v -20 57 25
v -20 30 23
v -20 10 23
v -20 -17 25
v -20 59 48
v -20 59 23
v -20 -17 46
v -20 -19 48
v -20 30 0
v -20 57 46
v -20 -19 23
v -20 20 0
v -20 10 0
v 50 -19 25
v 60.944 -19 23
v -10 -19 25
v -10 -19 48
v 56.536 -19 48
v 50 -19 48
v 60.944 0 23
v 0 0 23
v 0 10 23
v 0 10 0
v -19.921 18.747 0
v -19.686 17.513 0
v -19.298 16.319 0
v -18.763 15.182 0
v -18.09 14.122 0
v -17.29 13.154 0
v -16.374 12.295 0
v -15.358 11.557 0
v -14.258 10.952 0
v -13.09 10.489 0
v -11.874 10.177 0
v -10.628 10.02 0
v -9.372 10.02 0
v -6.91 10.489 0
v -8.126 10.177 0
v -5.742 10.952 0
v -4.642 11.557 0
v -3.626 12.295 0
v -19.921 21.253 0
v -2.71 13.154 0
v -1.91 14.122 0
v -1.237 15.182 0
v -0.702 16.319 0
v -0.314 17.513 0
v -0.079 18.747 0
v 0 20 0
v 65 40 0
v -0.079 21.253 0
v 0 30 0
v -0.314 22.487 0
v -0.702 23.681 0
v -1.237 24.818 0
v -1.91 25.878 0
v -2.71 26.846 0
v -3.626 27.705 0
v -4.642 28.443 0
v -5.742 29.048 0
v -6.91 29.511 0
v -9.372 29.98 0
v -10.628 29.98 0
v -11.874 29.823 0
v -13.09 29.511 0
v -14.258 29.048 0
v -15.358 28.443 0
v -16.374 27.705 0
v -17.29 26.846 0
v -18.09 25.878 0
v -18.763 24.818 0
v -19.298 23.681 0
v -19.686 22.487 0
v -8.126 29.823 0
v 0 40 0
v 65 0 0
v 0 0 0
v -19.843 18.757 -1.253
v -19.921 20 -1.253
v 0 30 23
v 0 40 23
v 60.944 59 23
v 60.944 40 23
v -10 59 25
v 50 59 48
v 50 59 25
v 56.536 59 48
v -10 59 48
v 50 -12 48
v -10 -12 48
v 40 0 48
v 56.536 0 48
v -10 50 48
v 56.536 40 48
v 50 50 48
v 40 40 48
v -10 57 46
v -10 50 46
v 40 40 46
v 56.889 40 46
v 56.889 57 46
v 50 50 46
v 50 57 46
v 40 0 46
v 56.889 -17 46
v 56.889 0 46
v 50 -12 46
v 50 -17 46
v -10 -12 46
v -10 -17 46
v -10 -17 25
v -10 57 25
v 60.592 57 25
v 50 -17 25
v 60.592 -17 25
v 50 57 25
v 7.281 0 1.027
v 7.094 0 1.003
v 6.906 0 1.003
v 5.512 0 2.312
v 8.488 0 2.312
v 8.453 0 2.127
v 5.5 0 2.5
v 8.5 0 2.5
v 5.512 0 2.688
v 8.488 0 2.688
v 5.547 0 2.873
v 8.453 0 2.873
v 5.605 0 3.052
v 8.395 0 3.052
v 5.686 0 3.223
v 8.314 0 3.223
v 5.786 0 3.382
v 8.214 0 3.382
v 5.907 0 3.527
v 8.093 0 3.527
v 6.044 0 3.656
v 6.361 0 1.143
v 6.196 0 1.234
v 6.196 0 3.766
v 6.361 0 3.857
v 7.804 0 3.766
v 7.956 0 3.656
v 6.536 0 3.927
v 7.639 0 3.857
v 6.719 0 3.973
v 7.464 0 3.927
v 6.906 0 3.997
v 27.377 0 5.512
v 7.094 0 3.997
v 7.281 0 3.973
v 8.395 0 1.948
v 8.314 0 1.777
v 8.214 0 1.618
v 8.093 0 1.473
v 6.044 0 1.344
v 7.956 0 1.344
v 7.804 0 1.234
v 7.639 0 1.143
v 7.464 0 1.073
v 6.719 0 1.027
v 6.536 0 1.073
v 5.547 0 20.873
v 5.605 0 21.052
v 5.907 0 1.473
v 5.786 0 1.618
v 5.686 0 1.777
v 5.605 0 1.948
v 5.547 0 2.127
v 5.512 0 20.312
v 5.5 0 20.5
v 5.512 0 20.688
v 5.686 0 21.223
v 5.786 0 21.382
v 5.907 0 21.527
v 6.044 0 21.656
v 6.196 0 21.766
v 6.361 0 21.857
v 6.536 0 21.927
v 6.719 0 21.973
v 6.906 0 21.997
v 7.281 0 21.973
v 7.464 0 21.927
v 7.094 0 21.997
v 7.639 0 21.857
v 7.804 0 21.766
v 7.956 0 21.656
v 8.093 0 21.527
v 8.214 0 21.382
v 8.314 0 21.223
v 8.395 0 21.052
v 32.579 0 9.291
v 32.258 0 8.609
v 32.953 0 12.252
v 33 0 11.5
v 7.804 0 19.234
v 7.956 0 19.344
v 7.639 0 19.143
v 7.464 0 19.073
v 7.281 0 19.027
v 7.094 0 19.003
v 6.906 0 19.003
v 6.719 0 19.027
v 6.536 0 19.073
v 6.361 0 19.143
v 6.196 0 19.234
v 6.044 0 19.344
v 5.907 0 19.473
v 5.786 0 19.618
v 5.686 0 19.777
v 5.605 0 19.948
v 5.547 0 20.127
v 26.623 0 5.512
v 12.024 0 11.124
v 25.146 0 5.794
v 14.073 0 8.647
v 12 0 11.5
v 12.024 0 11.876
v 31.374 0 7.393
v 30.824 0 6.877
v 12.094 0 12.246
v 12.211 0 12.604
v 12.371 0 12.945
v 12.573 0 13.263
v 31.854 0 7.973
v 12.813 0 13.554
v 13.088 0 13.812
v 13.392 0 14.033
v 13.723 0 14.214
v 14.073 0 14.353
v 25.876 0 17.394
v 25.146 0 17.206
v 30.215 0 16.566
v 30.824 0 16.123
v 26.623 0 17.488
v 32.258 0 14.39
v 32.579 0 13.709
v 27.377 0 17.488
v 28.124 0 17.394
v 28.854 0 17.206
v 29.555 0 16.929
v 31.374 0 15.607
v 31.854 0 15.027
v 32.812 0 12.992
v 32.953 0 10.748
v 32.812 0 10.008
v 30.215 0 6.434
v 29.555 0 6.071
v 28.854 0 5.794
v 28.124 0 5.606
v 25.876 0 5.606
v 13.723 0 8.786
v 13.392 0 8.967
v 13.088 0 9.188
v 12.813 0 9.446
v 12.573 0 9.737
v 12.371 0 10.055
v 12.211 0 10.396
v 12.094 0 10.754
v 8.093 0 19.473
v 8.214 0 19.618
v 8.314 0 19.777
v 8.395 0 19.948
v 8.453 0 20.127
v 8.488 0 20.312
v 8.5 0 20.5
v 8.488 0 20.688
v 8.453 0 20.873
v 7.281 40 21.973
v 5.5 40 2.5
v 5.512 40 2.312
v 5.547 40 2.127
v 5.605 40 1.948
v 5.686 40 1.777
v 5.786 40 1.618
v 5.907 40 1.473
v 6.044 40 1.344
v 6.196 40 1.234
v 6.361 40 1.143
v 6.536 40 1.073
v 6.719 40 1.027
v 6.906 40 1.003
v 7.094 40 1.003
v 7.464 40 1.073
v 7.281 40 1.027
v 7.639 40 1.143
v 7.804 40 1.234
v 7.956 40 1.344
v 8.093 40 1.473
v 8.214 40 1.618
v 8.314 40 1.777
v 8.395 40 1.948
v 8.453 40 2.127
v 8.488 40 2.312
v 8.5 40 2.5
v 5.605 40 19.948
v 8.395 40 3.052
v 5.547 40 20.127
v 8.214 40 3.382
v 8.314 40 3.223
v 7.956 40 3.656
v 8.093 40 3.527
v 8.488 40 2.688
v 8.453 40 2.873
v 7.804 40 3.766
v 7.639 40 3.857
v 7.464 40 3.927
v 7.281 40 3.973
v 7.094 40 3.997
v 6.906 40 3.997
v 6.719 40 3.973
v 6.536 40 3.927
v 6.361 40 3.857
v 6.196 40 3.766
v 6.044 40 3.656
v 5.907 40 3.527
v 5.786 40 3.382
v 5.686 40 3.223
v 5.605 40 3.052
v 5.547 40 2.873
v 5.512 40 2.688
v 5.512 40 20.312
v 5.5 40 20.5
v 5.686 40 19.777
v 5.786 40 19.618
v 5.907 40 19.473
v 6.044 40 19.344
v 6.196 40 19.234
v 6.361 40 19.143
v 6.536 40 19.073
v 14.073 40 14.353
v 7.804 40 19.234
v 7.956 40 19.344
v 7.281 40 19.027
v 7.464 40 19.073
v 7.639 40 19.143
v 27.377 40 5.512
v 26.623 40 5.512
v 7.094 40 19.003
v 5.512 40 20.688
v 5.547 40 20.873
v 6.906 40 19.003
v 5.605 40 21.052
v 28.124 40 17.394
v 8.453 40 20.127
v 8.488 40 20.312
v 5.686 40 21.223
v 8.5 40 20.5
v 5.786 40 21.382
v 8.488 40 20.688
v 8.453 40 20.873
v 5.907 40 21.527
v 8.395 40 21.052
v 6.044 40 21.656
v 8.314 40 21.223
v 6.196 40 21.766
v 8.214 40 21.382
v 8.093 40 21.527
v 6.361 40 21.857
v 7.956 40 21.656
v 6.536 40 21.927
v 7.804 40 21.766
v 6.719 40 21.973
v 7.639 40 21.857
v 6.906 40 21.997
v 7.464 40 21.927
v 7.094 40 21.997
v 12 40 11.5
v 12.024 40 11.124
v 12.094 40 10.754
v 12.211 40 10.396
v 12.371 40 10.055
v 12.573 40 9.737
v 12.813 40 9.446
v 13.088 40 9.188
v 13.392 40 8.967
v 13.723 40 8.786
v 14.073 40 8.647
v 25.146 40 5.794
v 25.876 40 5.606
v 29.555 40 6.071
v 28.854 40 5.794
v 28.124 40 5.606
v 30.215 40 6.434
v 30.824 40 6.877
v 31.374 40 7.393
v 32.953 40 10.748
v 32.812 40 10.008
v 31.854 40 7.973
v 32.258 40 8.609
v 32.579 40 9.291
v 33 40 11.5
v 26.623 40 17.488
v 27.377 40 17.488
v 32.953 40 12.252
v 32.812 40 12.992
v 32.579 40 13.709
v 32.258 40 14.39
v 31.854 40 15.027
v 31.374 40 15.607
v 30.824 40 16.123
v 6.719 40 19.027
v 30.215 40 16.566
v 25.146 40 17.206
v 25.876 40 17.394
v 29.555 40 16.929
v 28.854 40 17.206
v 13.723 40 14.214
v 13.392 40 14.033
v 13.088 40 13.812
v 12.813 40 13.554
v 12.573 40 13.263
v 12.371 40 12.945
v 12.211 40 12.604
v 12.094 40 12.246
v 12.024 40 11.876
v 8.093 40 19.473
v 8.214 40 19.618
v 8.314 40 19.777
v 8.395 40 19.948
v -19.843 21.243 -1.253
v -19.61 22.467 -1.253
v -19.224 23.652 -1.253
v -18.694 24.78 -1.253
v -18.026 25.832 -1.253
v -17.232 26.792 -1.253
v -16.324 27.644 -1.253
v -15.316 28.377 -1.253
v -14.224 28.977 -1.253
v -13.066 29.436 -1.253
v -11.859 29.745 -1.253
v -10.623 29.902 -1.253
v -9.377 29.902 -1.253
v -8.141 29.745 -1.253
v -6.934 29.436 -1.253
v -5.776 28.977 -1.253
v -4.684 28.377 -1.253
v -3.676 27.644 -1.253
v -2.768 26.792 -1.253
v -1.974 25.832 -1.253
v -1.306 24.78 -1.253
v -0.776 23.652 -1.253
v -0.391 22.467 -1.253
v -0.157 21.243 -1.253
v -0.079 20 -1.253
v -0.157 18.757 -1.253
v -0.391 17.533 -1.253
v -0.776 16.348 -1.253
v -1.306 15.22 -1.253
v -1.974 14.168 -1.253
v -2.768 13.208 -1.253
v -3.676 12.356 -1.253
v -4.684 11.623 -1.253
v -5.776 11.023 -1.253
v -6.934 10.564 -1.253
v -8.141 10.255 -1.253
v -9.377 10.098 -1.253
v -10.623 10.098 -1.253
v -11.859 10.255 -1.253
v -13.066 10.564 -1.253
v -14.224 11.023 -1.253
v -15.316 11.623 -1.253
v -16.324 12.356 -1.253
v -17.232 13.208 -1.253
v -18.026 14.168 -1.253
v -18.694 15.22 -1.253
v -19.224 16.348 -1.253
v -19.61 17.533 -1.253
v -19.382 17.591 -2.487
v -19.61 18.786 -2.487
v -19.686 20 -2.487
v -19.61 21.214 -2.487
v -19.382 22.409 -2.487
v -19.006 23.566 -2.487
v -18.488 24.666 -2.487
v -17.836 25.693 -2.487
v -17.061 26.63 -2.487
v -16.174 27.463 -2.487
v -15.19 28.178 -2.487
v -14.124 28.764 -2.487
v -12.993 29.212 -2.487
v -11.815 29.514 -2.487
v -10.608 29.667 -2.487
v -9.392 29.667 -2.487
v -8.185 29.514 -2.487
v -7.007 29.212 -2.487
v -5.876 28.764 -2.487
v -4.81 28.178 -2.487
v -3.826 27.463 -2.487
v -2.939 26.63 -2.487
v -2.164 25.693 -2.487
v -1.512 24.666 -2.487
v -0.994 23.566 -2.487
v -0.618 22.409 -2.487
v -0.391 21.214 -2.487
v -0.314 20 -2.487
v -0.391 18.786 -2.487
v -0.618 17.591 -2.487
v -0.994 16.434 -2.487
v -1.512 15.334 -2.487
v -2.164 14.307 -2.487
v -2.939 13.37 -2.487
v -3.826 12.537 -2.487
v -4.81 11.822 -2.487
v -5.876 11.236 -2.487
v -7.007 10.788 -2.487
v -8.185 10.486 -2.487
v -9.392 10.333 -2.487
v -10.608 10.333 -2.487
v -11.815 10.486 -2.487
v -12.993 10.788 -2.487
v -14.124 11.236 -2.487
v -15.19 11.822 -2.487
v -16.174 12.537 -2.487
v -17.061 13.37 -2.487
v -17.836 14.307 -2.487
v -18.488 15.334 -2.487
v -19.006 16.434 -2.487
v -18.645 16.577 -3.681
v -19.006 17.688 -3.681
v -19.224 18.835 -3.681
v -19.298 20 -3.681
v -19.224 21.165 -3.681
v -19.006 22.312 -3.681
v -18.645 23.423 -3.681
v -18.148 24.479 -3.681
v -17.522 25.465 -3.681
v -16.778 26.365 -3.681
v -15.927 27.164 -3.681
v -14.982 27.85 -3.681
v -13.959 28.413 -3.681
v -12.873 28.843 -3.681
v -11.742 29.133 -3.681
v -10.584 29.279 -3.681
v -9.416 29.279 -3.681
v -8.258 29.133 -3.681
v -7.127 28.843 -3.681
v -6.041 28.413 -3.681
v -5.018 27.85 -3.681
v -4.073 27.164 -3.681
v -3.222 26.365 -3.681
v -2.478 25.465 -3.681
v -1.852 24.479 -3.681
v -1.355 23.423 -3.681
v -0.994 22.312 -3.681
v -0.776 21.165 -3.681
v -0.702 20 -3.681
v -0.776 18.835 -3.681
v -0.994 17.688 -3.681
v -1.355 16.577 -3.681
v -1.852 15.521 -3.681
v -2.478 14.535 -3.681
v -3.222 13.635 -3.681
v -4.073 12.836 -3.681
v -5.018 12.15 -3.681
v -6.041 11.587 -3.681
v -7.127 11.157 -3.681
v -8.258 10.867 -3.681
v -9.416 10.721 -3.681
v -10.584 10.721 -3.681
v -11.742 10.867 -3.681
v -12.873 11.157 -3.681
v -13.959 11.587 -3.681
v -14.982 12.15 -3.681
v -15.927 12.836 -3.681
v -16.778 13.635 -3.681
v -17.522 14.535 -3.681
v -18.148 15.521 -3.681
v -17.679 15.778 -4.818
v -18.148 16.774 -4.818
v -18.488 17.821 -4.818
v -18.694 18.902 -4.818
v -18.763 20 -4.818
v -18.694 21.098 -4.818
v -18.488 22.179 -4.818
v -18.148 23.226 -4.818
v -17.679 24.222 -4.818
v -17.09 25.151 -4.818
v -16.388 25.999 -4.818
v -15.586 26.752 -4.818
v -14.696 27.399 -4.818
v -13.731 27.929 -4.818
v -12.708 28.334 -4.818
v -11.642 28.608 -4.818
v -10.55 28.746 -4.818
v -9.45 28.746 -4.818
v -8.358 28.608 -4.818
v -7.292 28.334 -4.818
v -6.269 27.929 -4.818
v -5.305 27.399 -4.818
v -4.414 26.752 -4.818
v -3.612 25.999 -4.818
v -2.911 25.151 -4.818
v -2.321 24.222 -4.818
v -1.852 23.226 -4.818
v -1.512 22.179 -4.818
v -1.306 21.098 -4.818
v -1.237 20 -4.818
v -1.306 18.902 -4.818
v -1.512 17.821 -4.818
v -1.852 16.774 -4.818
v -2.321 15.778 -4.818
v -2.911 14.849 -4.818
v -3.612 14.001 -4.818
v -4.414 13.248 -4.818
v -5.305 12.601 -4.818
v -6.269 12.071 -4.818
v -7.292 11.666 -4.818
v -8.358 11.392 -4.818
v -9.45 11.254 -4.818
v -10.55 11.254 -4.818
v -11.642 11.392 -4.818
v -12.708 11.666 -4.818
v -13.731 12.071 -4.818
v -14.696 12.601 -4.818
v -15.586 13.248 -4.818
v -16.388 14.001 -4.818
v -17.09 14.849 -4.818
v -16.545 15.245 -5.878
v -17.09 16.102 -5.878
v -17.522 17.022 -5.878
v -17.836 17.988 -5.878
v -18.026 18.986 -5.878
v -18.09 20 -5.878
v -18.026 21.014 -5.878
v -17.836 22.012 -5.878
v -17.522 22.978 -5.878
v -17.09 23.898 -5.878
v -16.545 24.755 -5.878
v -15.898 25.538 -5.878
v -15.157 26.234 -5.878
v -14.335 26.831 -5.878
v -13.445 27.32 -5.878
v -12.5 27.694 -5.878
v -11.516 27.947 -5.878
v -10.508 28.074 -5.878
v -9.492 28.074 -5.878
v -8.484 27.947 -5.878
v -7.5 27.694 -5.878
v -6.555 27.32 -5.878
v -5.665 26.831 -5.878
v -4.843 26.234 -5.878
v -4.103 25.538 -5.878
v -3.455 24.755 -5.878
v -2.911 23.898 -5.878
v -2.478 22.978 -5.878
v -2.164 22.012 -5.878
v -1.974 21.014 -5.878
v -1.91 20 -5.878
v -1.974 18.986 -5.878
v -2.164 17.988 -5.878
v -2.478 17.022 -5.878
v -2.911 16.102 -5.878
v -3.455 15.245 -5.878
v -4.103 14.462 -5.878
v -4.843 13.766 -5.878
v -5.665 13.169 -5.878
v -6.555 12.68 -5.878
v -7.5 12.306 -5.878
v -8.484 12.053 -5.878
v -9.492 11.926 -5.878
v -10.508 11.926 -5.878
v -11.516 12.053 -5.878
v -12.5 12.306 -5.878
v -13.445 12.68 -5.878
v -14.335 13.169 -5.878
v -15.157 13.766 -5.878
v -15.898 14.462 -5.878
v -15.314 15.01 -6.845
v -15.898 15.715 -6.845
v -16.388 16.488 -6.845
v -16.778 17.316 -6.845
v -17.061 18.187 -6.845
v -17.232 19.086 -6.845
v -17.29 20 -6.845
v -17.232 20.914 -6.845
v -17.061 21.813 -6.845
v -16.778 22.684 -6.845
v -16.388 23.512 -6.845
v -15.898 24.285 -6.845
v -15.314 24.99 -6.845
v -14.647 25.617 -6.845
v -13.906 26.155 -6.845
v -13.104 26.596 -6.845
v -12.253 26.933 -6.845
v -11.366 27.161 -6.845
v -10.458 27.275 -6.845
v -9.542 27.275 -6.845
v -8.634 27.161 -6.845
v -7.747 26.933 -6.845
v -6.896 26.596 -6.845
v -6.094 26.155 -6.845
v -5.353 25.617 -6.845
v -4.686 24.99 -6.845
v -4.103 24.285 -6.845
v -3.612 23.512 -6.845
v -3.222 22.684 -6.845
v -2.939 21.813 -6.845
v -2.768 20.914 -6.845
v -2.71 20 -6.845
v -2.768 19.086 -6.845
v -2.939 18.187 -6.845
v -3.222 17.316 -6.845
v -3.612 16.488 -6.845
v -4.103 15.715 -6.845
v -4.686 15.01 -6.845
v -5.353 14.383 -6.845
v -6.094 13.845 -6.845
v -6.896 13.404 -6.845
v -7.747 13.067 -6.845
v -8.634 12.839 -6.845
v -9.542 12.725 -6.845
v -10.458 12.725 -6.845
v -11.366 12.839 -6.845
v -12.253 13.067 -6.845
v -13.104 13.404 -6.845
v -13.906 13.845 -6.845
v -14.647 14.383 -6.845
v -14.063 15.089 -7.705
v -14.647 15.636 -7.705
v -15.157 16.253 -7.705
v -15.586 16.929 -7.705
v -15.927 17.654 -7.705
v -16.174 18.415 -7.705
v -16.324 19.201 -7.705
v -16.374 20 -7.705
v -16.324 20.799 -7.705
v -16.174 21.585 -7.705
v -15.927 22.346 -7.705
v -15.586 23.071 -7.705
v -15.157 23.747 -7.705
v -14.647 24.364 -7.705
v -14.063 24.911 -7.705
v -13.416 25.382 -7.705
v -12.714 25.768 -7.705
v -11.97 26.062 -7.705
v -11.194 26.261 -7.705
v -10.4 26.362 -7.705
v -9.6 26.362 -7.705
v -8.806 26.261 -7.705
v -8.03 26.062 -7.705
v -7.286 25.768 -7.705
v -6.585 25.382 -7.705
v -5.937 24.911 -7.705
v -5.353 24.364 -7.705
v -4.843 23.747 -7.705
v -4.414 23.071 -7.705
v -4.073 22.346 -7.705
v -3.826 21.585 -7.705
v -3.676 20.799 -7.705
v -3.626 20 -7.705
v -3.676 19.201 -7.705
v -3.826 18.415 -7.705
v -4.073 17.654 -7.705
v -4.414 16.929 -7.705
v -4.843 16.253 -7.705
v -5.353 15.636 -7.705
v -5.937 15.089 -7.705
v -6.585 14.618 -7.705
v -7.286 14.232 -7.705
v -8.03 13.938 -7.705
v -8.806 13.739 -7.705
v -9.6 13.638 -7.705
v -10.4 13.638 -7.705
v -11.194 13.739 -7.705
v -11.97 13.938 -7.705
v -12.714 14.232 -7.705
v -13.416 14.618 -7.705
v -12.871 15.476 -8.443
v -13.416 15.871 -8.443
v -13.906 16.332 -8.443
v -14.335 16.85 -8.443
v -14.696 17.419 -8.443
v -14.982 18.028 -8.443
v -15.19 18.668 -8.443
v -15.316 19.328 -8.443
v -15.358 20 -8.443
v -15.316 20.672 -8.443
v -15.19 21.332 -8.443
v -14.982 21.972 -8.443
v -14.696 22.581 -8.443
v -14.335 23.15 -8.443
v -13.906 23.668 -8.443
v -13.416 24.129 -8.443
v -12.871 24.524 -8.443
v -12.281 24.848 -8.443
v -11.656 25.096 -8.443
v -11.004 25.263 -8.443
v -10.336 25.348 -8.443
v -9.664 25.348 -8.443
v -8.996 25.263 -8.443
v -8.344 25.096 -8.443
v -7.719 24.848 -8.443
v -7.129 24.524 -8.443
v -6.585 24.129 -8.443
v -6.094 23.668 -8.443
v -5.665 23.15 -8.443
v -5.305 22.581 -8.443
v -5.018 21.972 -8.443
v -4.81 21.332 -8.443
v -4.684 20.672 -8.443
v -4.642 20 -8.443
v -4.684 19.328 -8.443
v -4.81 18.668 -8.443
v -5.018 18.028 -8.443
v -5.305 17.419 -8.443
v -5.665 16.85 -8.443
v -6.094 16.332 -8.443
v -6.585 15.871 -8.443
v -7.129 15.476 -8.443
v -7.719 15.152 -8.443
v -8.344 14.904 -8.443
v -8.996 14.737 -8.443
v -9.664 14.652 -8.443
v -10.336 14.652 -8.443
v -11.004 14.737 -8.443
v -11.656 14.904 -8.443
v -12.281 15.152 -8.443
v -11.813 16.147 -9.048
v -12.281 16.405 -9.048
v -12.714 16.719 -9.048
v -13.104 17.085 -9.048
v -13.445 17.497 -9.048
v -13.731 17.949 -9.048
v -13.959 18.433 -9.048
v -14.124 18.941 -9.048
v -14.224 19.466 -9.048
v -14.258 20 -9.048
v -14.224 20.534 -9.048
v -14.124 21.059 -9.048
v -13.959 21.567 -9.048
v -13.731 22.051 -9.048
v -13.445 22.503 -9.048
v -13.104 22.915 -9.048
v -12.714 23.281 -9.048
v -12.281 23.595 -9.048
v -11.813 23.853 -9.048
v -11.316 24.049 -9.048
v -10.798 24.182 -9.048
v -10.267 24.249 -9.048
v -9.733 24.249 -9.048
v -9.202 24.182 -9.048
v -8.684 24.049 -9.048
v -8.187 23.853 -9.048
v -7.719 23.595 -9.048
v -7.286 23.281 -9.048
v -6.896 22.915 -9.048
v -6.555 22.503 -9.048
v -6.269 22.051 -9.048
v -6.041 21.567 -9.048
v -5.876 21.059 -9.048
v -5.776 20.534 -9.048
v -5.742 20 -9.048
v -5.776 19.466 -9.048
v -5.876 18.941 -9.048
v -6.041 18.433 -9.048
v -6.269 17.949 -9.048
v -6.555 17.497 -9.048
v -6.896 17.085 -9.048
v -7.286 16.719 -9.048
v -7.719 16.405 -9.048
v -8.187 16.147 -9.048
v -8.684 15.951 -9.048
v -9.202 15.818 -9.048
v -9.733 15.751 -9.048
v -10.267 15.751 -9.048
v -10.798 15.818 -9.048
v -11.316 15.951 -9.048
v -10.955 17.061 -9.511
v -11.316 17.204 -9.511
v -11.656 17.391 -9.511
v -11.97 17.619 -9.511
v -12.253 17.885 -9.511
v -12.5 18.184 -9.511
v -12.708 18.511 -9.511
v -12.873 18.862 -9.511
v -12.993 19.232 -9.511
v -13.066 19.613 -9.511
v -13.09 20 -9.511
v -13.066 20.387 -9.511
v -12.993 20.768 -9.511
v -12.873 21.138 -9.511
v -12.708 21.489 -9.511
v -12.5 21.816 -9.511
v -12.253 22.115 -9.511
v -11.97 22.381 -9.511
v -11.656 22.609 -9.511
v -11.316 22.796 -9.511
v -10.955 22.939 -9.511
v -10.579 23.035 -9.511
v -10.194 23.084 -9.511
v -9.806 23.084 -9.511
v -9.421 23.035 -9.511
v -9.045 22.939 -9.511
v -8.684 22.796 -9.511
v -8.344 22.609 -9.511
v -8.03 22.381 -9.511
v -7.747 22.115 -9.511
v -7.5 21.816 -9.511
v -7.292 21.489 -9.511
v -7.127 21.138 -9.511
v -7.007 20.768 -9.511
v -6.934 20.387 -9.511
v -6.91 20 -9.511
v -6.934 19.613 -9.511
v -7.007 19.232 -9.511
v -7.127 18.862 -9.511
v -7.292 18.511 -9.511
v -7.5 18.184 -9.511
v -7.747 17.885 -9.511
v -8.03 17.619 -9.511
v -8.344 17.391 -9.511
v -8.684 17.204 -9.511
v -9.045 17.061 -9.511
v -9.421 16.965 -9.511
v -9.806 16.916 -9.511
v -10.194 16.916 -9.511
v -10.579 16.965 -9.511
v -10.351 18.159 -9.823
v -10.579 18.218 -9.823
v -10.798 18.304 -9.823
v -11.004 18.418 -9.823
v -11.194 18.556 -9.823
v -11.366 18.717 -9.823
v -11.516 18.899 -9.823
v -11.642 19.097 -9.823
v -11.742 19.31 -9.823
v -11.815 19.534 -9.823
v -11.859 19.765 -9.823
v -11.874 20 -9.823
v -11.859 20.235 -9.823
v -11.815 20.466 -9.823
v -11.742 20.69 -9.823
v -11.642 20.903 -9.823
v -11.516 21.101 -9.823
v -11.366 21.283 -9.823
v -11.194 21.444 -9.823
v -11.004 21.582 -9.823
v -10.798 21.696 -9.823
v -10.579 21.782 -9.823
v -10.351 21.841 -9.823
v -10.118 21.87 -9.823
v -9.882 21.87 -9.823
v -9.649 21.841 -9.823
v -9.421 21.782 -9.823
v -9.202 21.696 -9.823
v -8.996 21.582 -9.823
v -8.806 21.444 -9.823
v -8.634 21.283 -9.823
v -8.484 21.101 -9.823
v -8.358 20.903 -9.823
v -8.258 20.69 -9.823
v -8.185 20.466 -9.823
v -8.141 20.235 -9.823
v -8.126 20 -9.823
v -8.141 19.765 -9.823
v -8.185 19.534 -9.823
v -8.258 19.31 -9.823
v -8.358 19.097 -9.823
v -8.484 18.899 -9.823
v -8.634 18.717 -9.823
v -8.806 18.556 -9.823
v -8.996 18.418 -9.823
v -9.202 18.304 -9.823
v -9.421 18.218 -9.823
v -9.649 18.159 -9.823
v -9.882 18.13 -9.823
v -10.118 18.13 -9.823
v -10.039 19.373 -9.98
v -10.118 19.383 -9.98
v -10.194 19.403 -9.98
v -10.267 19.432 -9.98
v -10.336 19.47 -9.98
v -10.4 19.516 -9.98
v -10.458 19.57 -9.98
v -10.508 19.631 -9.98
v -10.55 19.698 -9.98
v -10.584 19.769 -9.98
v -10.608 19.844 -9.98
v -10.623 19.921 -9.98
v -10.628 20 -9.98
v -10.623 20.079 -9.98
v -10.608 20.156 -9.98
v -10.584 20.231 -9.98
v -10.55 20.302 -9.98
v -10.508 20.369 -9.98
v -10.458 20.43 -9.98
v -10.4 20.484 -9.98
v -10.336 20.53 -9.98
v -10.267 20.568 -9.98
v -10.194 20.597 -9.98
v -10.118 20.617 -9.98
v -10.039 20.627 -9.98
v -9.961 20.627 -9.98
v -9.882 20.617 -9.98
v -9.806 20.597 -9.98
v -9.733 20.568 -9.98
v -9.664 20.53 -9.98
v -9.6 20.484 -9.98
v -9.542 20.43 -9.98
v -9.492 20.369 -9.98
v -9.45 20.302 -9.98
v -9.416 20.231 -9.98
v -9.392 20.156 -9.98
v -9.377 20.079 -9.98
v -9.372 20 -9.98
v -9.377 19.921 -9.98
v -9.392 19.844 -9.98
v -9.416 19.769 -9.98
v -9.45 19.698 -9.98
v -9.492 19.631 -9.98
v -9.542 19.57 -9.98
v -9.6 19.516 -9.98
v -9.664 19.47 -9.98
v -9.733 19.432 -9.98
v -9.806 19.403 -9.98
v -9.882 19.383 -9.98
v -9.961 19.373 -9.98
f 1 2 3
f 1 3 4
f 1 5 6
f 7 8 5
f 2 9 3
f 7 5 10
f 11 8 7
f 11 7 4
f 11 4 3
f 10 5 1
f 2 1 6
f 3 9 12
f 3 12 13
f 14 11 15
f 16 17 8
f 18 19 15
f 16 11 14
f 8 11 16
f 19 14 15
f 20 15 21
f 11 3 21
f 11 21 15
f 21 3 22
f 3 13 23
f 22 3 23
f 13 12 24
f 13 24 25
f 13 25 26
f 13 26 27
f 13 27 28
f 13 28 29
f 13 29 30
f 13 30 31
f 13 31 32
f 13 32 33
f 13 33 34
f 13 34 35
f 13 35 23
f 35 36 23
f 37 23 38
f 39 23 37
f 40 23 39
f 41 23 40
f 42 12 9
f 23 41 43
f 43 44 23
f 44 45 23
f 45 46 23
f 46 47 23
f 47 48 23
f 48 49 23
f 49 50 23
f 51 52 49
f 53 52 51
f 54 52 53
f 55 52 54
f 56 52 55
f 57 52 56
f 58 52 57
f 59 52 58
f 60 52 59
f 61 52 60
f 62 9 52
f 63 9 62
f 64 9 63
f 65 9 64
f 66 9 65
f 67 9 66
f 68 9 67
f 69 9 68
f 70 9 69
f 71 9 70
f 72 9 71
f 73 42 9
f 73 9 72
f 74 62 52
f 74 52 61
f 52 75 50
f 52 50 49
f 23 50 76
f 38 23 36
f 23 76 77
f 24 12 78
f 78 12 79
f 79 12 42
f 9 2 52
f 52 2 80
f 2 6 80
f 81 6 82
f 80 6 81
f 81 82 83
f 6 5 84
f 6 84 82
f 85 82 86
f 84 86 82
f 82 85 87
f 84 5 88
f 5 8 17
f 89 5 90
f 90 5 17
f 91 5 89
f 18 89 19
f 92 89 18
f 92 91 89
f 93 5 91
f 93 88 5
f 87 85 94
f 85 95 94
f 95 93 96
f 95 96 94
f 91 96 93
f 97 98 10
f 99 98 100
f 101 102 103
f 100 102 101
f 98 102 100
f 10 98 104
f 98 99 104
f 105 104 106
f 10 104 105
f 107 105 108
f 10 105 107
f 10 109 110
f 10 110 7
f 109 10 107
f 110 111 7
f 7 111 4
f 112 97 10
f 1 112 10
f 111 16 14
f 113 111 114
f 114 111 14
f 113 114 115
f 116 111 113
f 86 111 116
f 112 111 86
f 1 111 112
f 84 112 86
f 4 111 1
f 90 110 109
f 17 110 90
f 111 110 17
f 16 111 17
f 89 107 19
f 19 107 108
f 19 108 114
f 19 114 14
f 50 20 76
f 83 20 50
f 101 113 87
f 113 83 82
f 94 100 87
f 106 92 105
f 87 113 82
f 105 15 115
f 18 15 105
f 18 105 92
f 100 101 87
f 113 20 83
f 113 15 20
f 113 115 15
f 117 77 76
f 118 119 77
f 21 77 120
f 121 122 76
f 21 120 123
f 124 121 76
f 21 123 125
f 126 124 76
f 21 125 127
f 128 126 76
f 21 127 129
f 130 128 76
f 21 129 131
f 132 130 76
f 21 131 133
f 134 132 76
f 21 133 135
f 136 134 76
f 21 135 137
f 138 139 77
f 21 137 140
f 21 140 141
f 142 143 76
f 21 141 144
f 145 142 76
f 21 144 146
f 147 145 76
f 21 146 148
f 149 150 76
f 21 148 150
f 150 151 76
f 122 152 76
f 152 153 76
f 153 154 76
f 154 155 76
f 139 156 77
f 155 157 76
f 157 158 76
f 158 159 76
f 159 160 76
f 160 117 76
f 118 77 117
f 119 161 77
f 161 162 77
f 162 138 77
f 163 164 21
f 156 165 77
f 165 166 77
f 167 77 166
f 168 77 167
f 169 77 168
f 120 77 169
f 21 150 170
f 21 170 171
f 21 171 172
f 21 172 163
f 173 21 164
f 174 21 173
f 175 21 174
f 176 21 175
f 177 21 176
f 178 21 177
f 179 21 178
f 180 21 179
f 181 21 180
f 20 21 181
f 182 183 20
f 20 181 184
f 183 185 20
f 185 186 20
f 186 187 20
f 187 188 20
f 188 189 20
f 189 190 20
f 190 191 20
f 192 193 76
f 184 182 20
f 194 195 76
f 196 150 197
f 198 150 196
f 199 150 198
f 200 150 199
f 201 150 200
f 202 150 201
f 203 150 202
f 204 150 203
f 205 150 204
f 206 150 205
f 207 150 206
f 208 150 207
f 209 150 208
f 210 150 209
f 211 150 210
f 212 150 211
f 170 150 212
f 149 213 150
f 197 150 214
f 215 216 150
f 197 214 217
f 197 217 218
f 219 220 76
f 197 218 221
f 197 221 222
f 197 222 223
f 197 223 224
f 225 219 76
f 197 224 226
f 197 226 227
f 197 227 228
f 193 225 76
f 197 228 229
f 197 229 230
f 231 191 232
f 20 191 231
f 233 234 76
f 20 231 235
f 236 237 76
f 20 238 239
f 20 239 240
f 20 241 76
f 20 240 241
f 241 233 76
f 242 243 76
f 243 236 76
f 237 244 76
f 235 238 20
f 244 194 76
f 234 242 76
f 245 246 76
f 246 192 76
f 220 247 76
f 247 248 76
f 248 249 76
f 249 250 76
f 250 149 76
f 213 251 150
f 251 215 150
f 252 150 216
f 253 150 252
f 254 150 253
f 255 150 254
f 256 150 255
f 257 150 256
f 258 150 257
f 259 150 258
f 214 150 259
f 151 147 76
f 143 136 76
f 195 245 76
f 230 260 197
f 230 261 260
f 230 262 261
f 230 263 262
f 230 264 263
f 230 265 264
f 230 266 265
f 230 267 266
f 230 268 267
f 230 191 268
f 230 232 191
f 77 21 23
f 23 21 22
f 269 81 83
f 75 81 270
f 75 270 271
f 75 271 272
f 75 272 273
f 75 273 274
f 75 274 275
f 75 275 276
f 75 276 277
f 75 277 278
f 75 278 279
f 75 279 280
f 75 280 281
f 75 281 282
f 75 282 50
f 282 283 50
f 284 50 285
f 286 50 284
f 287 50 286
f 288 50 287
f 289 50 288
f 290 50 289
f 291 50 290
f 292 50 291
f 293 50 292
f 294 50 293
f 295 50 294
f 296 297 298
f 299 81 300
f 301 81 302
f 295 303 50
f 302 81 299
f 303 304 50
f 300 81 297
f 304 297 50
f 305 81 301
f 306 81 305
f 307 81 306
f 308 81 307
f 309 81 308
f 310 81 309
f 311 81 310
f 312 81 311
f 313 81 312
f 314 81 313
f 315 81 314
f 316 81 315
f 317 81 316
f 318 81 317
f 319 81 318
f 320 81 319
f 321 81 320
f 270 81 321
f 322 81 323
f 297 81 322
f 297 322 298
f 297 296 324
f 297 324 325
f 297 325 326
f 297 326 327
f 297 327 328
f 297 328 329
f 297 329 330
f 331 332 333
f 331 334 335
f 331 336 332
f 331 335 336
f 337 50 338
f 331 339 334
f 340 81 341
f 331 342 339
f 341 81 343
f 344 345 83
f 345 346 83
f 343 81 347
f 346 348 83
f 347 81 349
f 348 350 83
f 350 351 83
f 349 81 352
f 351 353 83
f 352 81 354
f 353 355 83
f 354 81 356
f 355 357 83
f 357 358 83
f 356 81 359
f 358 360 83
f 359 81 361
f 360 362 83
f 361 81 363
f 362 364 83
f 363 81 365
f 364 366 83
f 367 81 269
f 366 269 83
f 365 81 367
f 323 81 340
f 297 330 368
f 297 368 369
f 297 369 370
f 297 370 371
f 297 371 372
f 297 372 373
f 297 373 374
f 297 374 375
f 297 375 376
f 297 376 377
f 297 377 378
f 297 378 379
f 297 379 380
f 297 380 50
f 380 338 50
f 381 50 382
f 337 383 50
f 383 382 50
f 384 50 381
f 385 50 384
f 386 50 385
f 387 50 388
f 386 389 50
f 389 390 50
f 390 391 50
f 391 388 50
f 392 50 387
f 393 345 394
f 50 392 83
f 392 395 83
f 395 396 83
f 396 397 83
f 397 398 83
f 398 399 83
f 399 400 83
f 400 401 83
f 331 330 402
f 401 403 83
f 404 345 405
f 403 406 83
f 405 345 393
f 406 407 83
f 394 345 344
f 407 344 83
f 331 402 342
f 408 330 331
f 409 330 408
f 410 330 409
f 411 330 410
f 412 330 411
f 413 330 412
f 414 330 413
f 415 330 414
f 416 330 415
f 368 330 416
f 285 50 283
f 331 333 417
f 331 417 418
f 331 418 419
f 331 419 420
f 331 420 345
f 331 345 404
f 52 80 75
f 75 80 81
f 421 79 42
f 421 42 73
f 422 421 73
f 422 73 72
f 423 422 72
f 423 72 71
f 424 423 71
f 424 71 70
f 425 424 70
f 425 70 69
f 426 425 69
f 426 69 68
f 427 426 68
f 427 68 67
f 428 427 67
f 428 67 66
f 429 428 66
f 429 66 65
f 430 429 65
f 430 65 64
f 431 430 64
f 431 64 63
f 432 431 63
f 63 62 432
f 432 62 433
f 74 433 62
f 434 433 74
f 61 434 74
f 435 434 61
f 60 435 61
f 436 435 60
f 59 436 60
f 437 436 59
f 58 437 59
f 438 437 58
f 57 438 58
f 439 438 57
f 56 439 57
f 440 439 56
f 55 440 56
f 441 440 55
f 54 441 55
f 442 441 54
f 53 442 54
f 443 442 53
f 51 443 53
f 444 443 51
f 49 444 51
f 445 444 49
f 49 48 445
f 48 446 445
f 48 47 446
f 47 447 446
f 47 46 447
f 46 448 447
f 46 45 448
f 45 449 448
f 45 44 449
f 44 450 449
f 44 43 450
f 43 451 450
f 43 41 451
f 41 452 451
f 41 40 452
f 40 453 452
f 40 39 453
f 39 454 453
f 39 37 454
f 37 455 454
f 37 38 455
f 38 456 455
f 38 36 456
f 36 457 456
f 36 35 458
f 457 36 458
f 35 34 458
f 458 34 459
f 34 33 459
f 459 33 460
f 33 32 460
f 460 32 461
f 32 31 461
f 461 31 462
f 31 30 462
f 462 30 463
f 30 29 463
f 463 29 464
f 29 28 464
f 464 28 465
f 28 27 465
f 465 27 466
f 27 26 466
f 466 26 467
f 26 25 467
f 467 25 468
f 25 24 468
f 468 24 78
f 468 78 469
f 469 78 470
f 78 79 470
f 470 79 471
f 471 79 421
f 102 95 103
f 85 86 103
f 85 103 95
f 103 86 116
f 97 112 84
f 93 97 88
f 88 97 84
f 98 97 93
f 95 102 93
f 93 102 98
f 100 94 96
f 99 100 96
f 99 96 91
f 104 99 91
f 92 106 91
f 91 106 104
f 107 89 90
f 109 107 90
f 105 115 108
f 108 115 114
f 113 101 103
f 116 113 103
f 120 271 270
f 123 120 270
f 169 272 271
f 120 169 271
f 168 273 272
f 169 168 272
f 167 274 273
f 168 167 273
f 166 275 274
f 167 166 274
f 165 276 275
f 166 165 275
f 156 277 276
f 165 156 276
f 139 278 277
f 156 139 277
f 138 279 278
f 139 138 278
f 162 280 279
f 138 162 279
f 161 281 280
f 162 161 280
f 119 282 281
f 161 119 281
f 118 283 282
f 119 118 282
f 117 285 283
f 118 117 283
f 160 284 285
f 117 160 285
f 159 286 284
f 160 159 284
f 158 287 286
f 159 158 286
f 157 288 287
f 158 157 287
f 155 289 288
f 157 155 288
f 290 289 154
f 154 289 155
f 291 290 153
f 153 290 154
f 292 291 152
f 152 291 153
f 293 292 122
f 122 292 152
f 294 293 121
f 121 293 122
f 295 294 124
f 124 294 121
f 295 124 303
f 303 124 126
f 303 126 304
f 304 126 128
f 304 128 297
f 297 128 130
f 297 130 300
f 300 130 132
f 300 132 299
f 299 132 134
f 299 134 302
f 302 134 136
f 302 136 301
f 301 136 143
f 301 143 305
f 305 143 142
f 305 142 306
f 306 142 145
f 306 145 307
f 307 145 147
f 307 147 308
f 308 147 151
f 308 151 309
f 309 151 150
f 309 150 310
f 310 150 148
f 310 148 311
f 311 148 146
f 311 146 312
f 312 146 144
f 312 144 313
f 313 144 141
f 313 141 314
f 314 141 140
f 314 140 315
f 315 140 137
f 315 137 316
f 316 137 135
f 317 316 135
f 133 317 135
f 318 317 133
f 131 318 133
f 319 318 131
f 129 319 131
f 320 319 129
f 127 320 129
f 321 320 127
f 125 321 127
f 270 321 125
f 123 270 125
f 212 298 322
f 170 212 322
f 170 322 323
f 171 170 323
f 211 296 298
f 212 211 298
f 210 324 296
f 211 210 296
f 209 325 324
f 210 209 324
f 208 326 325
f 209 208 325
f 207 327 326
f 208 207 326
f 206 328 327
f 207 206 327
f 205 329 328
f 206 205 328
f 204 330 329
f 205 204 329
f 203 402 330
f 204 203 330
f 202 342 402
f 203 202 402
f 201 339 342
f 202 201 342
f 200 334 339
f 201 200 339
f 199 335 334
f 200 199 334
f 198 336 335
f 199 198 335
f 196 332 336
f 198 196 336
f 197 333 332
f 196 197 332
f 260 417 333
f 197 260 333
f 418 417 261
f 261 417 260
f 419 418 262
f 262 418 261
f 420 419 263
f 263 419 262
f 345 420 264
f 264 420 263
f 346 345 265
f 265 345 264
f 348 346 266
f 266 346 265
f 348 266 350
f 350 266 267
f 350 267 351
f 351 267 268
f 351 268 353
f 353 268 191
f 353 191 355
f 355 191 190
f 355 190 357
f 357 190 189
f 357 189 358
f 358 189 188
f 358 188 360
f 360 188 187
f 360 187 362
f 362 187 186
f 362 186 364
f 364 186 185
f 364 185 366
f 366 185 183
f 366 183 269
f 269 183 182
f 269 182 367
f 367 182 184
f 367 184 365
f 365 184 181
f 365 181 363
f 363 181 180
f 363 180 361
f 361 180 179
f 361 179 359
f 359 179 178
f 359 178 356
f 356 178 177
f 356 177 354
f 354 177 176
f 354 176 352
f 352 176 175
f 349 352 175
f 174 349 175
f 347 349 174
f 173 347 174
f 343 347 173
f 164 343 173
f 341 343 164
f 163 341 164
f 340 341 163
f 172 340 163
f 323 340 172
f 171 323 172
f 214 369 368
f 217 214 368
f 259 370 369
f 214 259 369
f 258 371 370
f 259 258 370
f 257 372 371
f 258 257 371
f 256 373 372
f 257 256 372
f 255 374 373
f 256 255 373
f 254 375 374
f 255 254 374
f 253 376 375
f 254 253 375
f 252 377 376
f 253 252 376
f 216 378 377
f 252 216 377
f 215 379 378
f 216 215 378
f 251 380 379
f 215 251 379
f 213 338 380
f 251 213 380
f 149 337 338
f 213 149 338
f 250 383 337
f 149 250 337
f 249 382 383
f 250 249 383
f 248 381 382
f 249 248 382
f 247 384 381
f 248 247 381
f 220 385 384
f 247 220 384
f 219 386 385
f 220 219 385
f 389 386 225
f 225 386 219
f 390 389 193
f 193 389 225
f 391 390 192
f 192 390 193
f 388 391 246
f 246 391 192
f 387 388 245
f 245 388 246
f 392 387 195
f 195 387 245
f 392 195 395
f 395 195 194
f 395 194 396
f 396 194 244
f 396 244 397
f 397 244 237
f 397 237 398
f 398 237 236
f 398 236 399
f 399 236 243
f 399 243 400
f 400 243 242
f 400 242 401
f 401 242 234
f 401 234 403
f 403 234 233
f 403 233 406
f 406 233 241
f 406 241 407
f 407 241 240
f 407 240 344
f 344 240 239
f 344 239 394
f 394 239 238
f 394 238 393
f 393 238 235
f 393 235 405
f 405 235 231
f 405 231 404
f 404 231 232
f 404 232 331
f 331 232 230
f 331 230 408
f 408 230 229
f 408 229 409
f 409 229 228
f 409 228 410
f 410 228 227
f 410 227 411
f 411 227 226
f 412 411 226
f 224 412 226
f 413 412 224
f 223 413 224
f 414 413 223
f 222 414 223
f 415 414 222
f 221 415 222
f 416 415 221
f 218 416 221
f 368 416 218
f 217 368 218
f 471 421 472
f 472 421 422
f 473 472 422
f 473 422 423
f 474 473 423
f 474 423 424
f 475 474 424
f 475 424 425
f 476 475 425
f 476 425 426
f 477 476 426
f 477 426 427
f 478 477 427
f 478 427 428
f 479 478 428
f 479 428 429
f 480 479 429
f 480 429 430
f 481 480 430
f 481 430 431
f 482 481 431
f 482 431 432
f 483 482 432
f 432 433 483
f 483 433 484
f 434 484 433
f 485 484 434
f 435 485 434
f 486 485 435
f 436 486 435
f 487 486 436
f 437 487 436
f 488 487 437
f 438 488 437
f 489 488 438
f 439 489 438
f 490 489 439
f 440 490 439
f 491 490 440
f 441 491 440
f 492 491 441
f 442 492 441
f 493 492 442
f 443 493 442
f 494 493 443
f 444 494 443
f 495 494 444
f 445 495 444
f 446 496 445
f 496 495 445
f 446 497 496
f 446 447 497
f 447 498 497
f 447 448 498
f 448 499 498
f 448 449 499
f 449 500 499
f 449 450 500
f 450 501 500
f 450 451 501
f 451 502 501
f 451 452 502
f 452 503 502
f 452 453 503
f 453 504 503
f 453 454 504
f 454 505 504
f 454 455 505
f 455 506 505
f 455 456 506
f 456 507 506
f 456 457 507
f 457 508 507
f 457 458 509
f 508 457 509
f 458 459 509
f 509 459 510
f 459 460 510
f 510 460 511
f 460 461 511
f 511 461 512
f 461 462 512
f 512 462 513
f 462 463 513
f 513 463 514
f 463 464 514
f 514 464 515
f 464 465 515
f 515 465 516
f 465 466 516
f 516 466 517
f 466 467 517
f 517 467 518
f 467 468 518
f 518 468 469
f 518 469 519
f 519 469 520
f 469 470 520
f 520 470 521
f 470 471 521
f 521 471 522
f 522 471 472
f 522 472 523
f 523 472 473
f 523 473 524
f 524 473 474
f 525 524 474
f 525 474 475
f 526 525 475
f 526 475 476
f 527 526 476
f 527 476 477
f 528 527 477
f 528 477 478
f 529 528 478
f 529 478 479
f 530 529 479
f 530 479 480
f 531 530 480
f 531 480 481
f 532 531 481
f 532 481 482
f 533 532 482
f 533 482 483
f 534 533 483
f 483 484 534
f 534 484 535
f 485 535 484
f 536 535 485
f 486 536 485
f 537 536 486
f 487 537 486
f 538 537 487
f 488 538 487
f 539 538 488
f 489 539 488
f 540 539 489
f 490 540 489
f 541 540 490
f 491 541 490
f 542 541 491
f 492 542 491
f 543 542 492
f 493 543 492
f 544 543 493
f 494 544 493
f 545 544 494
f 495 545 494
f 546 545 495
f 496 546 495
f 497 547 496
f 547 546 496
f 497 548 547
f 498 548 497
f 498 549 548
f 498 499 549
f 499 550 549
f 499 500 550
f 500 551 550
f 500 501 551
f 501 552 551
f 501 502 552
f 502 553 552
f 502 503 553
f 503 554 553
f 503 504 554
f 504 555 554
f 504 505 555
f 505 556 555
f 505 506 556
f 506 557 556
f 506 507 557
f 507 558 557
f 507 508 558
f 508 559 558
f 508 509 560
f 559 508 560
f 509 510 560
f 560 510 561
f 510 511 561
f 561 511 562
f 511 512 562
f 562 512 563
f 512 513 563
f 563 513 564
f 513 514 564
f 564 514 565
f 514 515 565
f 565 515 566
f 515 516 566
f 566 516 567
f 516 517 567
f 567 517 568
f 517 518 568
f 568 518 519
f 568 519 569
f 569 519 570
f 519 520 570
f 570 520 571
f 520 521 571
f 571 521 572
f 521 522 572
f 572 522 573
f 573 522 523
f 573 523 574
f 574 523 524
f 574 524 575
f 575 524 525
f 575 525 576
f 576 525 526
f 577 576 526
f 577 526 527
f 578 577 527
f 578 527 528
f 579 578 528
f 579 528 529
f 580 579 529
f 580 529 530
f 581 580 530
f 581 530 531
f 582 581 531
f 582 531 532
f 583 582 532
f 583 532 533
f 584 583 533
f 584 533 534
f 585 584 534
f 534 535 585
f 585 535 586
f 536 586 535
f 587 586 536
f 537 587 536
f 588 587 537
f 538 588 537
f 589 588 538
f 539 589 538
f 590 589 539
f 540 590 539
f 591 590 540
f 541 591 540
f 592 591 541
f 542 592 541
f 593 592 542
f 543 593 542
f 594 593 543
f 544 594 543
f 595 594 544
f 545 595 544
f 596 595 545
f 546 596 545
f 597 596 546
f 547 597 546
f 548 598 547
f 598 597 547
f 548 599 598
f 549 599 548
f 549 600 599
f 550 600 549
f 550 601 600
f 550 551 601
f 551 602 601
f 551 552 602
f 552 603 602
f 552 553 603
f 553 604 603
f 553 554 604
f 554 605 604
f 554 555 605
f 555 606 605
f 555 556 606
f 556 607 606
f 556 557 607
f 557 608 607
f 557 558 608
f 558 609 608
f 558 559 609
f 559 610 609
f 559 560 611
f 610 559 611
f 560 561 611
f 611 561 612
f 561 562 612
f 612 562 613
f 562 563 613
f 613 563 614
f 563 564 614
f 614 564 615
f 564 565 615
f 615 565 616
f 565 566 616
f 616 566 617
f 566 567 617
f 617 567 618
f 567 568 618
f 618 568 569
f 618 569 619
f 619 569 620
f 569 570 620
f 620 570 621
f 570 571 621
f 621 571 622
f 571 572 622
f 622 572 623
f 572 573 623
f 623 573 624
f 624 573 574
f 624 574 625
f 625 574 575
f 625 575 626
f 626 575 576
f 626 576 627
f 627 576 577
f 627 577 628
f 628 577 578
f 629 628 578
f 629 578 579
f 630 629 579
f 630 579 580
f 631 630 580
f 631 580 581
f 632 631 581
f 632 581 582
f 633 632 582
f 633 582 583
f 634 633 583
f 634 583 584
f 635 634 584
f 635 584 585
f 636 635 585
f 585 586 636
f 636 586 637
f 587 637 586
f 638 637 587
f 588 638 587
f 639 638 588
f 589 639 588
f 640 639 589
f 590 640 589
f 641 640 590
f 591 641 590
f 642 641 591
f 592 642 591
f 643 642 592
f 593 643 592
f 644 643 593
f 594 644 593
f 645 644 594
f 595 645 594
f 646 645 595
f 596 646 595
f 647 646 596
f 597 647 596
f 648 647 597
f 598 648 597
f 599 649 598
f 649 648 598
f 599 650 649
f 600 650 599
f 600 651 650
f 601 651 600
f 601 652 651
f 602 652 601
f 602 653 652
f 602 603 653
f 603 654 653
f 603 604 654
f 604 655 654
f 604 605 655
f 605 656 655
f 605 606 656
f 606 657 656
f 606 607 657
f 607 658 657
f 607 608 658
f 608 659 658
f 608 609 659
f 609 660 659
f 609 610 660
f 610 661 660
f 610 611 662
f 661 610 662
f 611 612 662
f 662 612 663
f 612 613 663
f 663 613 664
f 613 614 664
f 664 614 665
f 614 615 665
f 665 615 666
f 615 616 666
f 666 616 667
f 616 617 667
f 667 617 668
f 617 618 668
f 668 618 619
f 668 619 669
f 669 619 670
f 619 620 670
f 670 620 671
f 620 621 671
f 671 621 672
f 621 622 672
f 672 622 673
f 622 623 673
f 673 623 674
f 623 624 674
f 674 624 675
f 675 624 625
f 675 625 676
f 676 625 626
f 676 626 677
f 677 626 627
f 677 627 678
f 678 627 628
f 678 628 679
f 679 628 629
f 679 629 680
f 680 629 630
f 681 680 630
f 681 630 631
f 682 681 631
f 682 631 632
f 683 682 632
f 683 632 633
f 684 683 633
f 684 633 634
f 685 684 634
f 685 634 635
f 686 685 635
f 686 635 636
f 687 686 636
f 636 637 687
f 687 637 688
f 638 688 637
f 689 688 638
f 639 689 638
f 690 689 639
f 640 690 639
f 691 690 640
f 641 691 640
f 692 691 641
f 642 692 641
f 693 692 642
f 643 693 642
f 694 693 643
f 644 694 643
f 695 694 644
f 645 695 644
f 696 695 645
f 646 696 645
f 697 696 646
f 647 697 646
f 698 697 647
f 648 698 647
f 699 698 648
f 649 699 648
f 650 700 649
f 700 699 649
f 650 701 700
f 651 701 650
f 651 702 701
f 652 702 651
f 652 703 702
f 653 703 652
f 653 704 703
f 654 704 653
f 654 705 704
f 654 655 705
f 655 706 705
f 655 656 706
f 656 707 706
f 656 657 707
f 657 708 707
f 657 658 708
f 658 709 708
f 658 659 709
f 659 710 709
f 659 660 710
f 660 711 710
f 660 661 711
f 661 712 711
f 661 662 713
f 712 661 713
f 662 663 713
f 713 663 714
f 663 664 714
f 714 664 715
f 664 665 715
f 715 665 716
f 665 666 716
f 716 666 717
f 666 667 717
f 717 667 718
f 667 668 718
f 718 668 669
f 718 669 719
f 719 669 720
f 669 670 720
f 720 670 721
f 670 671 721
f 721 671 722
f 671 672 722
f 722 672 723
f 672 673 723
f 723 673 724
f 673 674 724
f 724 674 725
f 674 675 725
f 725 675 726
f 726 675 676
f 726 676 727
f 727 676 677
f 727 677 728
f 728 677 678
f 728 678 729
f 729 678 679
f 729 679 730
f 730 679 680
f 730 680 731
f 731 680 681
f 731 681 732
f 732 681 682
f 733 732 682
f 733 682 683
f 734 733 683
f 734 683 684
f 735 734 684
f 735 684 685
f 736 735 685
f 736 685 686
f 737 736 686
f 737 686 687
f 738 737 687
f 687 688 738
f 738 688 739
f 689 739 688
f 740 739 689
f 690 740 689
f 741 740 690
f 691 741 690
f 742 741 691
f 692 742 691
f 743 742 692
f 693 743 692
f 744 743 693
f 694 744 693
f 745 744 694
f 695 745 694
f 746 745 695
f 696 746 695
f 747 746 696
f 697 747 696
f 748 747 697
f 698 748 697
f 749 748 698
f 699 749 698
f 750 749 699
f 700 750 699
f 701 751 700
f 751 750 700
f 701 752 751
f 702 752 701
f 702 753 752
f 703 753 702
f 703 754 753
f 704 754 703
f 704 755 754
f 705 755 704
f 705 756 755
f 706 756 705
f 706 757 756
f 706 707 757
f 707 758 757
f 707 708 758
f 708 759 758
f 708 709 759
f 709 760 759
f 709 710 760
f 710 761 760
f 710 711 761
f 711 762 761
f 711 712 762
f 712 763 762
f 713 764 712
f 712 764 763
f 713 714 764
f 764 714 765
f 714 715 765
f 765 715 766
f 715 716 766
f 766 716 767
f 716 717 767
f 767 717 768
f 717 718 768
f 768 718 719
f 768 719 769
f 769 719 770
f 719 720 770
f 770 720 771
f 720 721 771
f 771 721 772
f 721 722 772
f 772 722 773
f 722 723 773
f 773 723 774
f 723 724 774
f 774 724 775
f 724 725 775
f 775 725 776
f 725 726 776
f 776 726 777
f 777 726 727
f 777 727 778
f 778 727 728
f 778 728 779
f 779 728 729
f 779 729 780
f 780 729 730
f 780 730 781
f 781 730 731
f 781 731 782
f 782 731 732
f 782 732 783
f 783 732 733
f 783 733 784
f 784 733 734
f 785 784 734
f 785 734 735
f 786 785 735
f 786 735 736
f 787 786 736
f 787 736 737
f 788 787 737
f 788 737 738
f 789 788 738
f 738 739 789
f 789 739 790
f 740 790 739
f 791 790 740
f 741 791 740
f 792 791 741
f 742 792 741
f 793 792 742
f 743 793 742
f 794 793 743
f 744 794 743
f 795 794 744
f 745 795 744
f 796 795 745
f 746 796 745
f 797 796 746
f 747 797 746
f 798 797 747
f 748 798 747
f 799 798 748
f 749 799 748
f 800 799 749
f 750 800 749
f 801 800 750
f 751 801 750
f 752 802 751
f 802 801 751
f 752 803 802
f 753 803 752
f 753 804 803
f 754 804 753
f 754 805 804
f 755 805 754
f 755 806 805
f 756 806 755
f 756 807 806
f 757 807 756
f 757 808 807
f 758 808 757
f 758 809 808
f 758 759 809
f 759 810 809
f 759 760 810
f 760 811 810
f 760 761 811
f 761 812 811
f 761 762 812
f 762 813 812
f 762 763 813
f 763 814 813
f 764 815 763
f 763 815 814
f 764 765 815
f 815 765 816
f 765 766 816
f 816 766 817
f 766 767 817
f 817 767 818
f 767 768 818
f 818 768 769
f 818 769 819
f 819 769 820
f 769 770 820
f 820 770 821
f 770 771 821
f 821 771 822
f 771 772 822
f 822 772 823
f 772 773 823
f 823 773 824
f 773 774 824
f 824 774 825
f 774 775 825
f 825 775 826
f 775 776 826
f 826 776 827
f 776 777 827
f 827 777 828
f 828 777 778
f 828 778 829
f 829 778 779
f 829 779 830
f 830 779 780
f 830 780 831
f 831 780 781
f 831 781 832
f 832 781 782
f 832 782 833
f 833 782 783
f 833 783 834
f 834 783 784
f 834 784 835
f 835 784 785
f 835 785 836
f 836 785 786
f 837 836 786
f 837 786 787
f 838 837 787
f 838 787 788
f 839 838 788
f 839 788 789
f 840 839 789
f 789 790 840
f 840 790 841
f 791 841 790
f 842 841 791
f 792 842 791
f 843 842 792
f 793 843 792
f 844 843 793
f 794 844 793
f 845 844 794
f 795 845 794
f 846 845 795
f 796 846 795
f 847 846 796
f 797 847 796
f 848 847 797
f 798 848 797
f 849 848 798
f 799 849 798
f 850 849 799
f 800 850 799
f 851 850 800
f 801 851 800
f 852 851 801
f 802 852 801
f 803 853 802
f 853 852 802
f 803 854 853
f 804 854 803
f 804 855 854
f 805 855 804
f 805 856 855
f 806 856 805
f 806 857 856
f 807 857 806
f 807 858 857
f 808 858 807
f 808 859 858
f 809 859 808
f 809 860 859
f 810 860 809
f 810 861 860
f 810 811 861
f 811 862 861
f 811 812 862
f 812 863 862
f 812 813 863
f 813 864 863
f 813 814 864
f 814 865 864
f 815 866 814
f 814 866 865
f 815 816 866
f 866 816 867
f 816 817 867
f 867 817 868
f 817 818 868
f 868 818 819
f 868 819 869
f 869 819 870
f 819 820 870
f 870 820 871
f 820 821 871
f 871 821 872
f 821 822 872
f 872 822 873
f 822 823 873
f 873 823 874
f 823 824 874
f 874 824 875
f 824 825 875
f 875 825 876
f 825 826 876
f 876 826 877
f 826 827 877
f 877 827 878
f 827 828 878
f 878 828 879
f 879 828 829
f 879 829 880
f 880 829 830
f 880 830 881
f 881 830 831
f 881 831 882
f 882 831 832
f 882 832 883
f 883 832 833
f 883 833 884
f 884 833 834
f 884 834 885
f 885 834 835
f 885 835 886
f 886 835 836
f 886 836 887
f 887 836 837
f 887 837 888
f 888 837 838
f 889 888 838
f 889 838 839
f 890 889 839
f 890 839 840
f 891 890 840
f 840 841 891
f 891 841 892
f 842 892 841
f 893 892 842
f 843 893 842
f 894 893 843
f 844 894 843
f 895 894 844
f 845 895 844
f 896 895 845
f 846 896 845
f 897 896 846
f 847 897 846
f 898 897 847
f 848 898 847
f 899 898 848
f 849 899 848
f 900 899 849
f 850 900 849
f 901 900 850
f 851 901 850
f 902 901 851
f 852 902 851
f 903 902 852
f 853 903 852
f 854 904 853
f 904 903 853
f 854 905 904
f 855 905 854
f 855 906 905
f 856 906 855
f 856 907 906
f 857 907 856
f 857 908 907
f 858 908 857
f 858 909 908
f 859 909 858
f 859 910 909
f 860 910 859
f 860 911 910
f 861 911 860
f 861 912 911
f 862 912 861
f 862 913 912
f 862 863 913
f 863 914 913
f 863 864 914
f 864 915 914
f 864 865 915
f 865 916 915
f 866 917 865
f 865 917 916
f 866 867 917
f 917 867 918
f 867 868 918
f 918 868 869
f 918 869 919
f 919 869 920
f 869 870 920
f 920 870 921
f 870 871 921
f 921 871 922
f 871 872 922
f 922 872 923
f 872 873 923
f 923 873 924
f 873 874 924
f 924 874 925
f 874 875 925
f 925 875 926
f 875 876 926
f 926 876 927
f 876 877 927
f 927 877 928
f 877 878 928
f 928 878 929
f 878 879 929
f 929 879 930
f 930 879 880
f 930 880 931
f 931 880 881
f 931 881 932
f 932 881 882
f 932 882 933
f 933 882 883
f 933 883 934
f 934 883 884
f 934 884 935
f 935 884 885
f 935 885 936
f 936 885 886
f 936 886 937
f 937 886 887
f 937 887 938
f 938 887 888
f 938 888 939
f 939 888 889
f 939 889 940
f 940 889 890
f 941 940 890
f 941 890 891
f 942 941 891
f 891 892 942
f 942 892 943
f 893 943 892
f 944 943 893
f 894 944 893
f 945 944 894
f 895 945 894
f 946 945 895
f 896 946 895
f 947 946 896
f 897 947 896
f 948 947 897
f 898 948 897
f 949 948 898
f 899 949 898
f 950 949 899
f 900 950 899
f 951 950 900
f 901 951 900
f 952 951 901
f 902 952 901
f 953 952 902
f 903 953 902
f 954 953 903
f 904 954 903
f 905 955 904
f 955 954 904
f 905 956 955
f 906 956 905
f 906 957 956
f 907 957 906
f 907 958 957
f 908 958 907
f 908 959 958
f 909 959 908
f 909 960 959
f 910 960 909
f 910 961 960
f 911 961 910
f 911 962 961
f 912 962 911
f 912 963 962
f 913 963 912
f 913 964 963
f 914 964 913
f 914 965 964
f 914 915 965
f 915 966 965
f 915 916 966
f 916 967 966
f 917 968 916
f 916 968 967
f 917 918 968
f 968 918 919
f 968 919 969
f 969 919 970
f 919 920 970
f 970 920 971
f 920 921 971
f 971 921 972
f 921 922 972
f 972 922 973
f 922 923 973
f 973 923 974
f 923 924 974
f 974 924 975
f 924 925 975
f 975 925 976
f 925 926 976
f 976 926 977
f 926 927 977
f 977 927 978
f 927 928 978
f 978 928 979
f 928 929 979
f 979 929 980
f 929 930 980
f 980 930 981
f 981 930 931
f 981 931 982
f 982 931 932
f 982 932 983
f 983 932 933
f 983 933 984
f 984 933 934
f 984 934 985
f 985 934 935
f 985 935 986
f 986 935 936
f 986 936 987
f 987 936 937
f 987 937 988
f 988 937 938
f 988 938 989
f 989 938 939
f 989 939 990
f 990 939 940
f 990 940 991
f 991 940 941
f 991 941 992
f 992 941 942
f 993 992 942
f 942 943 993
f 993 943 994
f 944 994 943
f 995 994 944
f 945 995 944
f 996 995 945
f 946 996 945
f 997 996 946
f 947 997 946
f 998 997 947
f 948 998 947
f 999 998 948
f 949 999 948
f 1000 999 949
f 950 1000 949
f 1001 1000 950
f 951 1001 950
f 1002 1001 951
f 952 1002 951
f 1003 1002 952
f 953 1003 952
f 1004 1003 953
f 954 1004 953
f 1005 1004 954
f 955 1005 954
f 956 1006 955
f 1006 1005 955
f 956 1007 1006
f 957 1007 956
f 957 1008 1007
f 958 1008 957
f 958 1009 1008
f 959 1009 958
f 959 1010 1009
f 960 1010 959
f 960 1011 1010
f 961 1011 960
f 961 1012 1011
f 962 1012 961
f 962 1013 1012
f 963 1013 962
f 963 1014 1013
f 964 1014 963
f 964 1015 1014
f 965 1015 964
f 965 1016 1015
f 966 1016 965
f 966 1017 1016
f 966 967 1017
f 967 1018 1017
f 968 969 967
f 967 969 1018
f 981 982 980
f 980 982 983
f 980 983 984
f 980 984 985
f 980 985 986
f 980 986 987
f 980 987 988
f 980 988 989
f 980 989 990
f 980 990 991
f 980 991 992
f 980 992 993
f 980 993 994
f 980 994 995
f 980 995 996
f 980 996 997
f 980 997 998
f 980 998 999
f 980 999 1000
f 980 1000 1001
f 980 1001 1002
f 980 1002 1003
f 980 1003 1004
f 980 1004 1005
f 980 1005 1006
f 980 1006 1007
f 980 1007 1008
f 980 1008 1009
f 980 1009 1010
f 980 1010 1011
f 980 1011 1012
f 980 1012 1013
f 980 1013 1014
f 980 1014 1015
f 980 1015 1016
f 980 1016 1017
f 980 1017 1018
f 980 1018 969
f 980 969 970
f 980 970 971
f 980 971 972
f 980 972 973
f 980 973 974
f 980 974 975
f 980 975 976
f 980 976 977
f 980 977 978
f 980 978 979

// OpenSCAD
//Baxterbot motor mount
//bpw 10/10/13

 $fn=50;  //resolution


module MotorMount() {

difference(){
union(){
cube([65, 40, 24], center = false);

//top box/plate
translate([-20,-19,23]){
cube([85, 78,25], center = false);}

//back cube
translate([-20,10,0]){
cube([21, 20,24], center = false);}
//roller
translate([-10,20,0]){
sphere(r=10, center = true);}

}

//botom screw hole
translate([7,-1,2.5]){
	rotate([-90,0,0]){
		cylinder(h=42, r=1.5);}}

//top screw hole
translate([7,-1,20.5]){
	rotate([-90,0,0]){
		cylinder(h=42, r=1.5);}}

hull(){
//hold for other side of axil
translate([27,-1,23/2]){
	rotate([-90,0,0]){
		cylinder(h=42, r=6);}}
//hold for little nub
translate([15,-1,23/2]){
	rotate([-90,0,0]){
		cylinder(h=42, r=3);}}
}

//top circuit enclosure hole 1 left right
translate([-22,-17,25]){
cube([90, 74,21], center = false);}

//top circuit enclosure hole 2 forward backward
translate([-10,-22, 25]){
cube([60, 90, 21], center = false);}

//top circuit enclosure hole 3  back hole
translate([-10,50,30]){
cube([60, 10,25], center = false);}

//top circuit enclosure hole 4 front hole
translate([-10,-22,30]){
cube([60, 10,25], center = false);}

//top circuit enclosure hole 6 ultrasonic hole
translate([40,0,30]){
cube([25, 40,25], center = false);}


//cut off the slant
translate([65,-30,0]){
	rotate([0,-10,0]){
		cube([20, 100,100], center = false);}}
}






}



MotorMount();
